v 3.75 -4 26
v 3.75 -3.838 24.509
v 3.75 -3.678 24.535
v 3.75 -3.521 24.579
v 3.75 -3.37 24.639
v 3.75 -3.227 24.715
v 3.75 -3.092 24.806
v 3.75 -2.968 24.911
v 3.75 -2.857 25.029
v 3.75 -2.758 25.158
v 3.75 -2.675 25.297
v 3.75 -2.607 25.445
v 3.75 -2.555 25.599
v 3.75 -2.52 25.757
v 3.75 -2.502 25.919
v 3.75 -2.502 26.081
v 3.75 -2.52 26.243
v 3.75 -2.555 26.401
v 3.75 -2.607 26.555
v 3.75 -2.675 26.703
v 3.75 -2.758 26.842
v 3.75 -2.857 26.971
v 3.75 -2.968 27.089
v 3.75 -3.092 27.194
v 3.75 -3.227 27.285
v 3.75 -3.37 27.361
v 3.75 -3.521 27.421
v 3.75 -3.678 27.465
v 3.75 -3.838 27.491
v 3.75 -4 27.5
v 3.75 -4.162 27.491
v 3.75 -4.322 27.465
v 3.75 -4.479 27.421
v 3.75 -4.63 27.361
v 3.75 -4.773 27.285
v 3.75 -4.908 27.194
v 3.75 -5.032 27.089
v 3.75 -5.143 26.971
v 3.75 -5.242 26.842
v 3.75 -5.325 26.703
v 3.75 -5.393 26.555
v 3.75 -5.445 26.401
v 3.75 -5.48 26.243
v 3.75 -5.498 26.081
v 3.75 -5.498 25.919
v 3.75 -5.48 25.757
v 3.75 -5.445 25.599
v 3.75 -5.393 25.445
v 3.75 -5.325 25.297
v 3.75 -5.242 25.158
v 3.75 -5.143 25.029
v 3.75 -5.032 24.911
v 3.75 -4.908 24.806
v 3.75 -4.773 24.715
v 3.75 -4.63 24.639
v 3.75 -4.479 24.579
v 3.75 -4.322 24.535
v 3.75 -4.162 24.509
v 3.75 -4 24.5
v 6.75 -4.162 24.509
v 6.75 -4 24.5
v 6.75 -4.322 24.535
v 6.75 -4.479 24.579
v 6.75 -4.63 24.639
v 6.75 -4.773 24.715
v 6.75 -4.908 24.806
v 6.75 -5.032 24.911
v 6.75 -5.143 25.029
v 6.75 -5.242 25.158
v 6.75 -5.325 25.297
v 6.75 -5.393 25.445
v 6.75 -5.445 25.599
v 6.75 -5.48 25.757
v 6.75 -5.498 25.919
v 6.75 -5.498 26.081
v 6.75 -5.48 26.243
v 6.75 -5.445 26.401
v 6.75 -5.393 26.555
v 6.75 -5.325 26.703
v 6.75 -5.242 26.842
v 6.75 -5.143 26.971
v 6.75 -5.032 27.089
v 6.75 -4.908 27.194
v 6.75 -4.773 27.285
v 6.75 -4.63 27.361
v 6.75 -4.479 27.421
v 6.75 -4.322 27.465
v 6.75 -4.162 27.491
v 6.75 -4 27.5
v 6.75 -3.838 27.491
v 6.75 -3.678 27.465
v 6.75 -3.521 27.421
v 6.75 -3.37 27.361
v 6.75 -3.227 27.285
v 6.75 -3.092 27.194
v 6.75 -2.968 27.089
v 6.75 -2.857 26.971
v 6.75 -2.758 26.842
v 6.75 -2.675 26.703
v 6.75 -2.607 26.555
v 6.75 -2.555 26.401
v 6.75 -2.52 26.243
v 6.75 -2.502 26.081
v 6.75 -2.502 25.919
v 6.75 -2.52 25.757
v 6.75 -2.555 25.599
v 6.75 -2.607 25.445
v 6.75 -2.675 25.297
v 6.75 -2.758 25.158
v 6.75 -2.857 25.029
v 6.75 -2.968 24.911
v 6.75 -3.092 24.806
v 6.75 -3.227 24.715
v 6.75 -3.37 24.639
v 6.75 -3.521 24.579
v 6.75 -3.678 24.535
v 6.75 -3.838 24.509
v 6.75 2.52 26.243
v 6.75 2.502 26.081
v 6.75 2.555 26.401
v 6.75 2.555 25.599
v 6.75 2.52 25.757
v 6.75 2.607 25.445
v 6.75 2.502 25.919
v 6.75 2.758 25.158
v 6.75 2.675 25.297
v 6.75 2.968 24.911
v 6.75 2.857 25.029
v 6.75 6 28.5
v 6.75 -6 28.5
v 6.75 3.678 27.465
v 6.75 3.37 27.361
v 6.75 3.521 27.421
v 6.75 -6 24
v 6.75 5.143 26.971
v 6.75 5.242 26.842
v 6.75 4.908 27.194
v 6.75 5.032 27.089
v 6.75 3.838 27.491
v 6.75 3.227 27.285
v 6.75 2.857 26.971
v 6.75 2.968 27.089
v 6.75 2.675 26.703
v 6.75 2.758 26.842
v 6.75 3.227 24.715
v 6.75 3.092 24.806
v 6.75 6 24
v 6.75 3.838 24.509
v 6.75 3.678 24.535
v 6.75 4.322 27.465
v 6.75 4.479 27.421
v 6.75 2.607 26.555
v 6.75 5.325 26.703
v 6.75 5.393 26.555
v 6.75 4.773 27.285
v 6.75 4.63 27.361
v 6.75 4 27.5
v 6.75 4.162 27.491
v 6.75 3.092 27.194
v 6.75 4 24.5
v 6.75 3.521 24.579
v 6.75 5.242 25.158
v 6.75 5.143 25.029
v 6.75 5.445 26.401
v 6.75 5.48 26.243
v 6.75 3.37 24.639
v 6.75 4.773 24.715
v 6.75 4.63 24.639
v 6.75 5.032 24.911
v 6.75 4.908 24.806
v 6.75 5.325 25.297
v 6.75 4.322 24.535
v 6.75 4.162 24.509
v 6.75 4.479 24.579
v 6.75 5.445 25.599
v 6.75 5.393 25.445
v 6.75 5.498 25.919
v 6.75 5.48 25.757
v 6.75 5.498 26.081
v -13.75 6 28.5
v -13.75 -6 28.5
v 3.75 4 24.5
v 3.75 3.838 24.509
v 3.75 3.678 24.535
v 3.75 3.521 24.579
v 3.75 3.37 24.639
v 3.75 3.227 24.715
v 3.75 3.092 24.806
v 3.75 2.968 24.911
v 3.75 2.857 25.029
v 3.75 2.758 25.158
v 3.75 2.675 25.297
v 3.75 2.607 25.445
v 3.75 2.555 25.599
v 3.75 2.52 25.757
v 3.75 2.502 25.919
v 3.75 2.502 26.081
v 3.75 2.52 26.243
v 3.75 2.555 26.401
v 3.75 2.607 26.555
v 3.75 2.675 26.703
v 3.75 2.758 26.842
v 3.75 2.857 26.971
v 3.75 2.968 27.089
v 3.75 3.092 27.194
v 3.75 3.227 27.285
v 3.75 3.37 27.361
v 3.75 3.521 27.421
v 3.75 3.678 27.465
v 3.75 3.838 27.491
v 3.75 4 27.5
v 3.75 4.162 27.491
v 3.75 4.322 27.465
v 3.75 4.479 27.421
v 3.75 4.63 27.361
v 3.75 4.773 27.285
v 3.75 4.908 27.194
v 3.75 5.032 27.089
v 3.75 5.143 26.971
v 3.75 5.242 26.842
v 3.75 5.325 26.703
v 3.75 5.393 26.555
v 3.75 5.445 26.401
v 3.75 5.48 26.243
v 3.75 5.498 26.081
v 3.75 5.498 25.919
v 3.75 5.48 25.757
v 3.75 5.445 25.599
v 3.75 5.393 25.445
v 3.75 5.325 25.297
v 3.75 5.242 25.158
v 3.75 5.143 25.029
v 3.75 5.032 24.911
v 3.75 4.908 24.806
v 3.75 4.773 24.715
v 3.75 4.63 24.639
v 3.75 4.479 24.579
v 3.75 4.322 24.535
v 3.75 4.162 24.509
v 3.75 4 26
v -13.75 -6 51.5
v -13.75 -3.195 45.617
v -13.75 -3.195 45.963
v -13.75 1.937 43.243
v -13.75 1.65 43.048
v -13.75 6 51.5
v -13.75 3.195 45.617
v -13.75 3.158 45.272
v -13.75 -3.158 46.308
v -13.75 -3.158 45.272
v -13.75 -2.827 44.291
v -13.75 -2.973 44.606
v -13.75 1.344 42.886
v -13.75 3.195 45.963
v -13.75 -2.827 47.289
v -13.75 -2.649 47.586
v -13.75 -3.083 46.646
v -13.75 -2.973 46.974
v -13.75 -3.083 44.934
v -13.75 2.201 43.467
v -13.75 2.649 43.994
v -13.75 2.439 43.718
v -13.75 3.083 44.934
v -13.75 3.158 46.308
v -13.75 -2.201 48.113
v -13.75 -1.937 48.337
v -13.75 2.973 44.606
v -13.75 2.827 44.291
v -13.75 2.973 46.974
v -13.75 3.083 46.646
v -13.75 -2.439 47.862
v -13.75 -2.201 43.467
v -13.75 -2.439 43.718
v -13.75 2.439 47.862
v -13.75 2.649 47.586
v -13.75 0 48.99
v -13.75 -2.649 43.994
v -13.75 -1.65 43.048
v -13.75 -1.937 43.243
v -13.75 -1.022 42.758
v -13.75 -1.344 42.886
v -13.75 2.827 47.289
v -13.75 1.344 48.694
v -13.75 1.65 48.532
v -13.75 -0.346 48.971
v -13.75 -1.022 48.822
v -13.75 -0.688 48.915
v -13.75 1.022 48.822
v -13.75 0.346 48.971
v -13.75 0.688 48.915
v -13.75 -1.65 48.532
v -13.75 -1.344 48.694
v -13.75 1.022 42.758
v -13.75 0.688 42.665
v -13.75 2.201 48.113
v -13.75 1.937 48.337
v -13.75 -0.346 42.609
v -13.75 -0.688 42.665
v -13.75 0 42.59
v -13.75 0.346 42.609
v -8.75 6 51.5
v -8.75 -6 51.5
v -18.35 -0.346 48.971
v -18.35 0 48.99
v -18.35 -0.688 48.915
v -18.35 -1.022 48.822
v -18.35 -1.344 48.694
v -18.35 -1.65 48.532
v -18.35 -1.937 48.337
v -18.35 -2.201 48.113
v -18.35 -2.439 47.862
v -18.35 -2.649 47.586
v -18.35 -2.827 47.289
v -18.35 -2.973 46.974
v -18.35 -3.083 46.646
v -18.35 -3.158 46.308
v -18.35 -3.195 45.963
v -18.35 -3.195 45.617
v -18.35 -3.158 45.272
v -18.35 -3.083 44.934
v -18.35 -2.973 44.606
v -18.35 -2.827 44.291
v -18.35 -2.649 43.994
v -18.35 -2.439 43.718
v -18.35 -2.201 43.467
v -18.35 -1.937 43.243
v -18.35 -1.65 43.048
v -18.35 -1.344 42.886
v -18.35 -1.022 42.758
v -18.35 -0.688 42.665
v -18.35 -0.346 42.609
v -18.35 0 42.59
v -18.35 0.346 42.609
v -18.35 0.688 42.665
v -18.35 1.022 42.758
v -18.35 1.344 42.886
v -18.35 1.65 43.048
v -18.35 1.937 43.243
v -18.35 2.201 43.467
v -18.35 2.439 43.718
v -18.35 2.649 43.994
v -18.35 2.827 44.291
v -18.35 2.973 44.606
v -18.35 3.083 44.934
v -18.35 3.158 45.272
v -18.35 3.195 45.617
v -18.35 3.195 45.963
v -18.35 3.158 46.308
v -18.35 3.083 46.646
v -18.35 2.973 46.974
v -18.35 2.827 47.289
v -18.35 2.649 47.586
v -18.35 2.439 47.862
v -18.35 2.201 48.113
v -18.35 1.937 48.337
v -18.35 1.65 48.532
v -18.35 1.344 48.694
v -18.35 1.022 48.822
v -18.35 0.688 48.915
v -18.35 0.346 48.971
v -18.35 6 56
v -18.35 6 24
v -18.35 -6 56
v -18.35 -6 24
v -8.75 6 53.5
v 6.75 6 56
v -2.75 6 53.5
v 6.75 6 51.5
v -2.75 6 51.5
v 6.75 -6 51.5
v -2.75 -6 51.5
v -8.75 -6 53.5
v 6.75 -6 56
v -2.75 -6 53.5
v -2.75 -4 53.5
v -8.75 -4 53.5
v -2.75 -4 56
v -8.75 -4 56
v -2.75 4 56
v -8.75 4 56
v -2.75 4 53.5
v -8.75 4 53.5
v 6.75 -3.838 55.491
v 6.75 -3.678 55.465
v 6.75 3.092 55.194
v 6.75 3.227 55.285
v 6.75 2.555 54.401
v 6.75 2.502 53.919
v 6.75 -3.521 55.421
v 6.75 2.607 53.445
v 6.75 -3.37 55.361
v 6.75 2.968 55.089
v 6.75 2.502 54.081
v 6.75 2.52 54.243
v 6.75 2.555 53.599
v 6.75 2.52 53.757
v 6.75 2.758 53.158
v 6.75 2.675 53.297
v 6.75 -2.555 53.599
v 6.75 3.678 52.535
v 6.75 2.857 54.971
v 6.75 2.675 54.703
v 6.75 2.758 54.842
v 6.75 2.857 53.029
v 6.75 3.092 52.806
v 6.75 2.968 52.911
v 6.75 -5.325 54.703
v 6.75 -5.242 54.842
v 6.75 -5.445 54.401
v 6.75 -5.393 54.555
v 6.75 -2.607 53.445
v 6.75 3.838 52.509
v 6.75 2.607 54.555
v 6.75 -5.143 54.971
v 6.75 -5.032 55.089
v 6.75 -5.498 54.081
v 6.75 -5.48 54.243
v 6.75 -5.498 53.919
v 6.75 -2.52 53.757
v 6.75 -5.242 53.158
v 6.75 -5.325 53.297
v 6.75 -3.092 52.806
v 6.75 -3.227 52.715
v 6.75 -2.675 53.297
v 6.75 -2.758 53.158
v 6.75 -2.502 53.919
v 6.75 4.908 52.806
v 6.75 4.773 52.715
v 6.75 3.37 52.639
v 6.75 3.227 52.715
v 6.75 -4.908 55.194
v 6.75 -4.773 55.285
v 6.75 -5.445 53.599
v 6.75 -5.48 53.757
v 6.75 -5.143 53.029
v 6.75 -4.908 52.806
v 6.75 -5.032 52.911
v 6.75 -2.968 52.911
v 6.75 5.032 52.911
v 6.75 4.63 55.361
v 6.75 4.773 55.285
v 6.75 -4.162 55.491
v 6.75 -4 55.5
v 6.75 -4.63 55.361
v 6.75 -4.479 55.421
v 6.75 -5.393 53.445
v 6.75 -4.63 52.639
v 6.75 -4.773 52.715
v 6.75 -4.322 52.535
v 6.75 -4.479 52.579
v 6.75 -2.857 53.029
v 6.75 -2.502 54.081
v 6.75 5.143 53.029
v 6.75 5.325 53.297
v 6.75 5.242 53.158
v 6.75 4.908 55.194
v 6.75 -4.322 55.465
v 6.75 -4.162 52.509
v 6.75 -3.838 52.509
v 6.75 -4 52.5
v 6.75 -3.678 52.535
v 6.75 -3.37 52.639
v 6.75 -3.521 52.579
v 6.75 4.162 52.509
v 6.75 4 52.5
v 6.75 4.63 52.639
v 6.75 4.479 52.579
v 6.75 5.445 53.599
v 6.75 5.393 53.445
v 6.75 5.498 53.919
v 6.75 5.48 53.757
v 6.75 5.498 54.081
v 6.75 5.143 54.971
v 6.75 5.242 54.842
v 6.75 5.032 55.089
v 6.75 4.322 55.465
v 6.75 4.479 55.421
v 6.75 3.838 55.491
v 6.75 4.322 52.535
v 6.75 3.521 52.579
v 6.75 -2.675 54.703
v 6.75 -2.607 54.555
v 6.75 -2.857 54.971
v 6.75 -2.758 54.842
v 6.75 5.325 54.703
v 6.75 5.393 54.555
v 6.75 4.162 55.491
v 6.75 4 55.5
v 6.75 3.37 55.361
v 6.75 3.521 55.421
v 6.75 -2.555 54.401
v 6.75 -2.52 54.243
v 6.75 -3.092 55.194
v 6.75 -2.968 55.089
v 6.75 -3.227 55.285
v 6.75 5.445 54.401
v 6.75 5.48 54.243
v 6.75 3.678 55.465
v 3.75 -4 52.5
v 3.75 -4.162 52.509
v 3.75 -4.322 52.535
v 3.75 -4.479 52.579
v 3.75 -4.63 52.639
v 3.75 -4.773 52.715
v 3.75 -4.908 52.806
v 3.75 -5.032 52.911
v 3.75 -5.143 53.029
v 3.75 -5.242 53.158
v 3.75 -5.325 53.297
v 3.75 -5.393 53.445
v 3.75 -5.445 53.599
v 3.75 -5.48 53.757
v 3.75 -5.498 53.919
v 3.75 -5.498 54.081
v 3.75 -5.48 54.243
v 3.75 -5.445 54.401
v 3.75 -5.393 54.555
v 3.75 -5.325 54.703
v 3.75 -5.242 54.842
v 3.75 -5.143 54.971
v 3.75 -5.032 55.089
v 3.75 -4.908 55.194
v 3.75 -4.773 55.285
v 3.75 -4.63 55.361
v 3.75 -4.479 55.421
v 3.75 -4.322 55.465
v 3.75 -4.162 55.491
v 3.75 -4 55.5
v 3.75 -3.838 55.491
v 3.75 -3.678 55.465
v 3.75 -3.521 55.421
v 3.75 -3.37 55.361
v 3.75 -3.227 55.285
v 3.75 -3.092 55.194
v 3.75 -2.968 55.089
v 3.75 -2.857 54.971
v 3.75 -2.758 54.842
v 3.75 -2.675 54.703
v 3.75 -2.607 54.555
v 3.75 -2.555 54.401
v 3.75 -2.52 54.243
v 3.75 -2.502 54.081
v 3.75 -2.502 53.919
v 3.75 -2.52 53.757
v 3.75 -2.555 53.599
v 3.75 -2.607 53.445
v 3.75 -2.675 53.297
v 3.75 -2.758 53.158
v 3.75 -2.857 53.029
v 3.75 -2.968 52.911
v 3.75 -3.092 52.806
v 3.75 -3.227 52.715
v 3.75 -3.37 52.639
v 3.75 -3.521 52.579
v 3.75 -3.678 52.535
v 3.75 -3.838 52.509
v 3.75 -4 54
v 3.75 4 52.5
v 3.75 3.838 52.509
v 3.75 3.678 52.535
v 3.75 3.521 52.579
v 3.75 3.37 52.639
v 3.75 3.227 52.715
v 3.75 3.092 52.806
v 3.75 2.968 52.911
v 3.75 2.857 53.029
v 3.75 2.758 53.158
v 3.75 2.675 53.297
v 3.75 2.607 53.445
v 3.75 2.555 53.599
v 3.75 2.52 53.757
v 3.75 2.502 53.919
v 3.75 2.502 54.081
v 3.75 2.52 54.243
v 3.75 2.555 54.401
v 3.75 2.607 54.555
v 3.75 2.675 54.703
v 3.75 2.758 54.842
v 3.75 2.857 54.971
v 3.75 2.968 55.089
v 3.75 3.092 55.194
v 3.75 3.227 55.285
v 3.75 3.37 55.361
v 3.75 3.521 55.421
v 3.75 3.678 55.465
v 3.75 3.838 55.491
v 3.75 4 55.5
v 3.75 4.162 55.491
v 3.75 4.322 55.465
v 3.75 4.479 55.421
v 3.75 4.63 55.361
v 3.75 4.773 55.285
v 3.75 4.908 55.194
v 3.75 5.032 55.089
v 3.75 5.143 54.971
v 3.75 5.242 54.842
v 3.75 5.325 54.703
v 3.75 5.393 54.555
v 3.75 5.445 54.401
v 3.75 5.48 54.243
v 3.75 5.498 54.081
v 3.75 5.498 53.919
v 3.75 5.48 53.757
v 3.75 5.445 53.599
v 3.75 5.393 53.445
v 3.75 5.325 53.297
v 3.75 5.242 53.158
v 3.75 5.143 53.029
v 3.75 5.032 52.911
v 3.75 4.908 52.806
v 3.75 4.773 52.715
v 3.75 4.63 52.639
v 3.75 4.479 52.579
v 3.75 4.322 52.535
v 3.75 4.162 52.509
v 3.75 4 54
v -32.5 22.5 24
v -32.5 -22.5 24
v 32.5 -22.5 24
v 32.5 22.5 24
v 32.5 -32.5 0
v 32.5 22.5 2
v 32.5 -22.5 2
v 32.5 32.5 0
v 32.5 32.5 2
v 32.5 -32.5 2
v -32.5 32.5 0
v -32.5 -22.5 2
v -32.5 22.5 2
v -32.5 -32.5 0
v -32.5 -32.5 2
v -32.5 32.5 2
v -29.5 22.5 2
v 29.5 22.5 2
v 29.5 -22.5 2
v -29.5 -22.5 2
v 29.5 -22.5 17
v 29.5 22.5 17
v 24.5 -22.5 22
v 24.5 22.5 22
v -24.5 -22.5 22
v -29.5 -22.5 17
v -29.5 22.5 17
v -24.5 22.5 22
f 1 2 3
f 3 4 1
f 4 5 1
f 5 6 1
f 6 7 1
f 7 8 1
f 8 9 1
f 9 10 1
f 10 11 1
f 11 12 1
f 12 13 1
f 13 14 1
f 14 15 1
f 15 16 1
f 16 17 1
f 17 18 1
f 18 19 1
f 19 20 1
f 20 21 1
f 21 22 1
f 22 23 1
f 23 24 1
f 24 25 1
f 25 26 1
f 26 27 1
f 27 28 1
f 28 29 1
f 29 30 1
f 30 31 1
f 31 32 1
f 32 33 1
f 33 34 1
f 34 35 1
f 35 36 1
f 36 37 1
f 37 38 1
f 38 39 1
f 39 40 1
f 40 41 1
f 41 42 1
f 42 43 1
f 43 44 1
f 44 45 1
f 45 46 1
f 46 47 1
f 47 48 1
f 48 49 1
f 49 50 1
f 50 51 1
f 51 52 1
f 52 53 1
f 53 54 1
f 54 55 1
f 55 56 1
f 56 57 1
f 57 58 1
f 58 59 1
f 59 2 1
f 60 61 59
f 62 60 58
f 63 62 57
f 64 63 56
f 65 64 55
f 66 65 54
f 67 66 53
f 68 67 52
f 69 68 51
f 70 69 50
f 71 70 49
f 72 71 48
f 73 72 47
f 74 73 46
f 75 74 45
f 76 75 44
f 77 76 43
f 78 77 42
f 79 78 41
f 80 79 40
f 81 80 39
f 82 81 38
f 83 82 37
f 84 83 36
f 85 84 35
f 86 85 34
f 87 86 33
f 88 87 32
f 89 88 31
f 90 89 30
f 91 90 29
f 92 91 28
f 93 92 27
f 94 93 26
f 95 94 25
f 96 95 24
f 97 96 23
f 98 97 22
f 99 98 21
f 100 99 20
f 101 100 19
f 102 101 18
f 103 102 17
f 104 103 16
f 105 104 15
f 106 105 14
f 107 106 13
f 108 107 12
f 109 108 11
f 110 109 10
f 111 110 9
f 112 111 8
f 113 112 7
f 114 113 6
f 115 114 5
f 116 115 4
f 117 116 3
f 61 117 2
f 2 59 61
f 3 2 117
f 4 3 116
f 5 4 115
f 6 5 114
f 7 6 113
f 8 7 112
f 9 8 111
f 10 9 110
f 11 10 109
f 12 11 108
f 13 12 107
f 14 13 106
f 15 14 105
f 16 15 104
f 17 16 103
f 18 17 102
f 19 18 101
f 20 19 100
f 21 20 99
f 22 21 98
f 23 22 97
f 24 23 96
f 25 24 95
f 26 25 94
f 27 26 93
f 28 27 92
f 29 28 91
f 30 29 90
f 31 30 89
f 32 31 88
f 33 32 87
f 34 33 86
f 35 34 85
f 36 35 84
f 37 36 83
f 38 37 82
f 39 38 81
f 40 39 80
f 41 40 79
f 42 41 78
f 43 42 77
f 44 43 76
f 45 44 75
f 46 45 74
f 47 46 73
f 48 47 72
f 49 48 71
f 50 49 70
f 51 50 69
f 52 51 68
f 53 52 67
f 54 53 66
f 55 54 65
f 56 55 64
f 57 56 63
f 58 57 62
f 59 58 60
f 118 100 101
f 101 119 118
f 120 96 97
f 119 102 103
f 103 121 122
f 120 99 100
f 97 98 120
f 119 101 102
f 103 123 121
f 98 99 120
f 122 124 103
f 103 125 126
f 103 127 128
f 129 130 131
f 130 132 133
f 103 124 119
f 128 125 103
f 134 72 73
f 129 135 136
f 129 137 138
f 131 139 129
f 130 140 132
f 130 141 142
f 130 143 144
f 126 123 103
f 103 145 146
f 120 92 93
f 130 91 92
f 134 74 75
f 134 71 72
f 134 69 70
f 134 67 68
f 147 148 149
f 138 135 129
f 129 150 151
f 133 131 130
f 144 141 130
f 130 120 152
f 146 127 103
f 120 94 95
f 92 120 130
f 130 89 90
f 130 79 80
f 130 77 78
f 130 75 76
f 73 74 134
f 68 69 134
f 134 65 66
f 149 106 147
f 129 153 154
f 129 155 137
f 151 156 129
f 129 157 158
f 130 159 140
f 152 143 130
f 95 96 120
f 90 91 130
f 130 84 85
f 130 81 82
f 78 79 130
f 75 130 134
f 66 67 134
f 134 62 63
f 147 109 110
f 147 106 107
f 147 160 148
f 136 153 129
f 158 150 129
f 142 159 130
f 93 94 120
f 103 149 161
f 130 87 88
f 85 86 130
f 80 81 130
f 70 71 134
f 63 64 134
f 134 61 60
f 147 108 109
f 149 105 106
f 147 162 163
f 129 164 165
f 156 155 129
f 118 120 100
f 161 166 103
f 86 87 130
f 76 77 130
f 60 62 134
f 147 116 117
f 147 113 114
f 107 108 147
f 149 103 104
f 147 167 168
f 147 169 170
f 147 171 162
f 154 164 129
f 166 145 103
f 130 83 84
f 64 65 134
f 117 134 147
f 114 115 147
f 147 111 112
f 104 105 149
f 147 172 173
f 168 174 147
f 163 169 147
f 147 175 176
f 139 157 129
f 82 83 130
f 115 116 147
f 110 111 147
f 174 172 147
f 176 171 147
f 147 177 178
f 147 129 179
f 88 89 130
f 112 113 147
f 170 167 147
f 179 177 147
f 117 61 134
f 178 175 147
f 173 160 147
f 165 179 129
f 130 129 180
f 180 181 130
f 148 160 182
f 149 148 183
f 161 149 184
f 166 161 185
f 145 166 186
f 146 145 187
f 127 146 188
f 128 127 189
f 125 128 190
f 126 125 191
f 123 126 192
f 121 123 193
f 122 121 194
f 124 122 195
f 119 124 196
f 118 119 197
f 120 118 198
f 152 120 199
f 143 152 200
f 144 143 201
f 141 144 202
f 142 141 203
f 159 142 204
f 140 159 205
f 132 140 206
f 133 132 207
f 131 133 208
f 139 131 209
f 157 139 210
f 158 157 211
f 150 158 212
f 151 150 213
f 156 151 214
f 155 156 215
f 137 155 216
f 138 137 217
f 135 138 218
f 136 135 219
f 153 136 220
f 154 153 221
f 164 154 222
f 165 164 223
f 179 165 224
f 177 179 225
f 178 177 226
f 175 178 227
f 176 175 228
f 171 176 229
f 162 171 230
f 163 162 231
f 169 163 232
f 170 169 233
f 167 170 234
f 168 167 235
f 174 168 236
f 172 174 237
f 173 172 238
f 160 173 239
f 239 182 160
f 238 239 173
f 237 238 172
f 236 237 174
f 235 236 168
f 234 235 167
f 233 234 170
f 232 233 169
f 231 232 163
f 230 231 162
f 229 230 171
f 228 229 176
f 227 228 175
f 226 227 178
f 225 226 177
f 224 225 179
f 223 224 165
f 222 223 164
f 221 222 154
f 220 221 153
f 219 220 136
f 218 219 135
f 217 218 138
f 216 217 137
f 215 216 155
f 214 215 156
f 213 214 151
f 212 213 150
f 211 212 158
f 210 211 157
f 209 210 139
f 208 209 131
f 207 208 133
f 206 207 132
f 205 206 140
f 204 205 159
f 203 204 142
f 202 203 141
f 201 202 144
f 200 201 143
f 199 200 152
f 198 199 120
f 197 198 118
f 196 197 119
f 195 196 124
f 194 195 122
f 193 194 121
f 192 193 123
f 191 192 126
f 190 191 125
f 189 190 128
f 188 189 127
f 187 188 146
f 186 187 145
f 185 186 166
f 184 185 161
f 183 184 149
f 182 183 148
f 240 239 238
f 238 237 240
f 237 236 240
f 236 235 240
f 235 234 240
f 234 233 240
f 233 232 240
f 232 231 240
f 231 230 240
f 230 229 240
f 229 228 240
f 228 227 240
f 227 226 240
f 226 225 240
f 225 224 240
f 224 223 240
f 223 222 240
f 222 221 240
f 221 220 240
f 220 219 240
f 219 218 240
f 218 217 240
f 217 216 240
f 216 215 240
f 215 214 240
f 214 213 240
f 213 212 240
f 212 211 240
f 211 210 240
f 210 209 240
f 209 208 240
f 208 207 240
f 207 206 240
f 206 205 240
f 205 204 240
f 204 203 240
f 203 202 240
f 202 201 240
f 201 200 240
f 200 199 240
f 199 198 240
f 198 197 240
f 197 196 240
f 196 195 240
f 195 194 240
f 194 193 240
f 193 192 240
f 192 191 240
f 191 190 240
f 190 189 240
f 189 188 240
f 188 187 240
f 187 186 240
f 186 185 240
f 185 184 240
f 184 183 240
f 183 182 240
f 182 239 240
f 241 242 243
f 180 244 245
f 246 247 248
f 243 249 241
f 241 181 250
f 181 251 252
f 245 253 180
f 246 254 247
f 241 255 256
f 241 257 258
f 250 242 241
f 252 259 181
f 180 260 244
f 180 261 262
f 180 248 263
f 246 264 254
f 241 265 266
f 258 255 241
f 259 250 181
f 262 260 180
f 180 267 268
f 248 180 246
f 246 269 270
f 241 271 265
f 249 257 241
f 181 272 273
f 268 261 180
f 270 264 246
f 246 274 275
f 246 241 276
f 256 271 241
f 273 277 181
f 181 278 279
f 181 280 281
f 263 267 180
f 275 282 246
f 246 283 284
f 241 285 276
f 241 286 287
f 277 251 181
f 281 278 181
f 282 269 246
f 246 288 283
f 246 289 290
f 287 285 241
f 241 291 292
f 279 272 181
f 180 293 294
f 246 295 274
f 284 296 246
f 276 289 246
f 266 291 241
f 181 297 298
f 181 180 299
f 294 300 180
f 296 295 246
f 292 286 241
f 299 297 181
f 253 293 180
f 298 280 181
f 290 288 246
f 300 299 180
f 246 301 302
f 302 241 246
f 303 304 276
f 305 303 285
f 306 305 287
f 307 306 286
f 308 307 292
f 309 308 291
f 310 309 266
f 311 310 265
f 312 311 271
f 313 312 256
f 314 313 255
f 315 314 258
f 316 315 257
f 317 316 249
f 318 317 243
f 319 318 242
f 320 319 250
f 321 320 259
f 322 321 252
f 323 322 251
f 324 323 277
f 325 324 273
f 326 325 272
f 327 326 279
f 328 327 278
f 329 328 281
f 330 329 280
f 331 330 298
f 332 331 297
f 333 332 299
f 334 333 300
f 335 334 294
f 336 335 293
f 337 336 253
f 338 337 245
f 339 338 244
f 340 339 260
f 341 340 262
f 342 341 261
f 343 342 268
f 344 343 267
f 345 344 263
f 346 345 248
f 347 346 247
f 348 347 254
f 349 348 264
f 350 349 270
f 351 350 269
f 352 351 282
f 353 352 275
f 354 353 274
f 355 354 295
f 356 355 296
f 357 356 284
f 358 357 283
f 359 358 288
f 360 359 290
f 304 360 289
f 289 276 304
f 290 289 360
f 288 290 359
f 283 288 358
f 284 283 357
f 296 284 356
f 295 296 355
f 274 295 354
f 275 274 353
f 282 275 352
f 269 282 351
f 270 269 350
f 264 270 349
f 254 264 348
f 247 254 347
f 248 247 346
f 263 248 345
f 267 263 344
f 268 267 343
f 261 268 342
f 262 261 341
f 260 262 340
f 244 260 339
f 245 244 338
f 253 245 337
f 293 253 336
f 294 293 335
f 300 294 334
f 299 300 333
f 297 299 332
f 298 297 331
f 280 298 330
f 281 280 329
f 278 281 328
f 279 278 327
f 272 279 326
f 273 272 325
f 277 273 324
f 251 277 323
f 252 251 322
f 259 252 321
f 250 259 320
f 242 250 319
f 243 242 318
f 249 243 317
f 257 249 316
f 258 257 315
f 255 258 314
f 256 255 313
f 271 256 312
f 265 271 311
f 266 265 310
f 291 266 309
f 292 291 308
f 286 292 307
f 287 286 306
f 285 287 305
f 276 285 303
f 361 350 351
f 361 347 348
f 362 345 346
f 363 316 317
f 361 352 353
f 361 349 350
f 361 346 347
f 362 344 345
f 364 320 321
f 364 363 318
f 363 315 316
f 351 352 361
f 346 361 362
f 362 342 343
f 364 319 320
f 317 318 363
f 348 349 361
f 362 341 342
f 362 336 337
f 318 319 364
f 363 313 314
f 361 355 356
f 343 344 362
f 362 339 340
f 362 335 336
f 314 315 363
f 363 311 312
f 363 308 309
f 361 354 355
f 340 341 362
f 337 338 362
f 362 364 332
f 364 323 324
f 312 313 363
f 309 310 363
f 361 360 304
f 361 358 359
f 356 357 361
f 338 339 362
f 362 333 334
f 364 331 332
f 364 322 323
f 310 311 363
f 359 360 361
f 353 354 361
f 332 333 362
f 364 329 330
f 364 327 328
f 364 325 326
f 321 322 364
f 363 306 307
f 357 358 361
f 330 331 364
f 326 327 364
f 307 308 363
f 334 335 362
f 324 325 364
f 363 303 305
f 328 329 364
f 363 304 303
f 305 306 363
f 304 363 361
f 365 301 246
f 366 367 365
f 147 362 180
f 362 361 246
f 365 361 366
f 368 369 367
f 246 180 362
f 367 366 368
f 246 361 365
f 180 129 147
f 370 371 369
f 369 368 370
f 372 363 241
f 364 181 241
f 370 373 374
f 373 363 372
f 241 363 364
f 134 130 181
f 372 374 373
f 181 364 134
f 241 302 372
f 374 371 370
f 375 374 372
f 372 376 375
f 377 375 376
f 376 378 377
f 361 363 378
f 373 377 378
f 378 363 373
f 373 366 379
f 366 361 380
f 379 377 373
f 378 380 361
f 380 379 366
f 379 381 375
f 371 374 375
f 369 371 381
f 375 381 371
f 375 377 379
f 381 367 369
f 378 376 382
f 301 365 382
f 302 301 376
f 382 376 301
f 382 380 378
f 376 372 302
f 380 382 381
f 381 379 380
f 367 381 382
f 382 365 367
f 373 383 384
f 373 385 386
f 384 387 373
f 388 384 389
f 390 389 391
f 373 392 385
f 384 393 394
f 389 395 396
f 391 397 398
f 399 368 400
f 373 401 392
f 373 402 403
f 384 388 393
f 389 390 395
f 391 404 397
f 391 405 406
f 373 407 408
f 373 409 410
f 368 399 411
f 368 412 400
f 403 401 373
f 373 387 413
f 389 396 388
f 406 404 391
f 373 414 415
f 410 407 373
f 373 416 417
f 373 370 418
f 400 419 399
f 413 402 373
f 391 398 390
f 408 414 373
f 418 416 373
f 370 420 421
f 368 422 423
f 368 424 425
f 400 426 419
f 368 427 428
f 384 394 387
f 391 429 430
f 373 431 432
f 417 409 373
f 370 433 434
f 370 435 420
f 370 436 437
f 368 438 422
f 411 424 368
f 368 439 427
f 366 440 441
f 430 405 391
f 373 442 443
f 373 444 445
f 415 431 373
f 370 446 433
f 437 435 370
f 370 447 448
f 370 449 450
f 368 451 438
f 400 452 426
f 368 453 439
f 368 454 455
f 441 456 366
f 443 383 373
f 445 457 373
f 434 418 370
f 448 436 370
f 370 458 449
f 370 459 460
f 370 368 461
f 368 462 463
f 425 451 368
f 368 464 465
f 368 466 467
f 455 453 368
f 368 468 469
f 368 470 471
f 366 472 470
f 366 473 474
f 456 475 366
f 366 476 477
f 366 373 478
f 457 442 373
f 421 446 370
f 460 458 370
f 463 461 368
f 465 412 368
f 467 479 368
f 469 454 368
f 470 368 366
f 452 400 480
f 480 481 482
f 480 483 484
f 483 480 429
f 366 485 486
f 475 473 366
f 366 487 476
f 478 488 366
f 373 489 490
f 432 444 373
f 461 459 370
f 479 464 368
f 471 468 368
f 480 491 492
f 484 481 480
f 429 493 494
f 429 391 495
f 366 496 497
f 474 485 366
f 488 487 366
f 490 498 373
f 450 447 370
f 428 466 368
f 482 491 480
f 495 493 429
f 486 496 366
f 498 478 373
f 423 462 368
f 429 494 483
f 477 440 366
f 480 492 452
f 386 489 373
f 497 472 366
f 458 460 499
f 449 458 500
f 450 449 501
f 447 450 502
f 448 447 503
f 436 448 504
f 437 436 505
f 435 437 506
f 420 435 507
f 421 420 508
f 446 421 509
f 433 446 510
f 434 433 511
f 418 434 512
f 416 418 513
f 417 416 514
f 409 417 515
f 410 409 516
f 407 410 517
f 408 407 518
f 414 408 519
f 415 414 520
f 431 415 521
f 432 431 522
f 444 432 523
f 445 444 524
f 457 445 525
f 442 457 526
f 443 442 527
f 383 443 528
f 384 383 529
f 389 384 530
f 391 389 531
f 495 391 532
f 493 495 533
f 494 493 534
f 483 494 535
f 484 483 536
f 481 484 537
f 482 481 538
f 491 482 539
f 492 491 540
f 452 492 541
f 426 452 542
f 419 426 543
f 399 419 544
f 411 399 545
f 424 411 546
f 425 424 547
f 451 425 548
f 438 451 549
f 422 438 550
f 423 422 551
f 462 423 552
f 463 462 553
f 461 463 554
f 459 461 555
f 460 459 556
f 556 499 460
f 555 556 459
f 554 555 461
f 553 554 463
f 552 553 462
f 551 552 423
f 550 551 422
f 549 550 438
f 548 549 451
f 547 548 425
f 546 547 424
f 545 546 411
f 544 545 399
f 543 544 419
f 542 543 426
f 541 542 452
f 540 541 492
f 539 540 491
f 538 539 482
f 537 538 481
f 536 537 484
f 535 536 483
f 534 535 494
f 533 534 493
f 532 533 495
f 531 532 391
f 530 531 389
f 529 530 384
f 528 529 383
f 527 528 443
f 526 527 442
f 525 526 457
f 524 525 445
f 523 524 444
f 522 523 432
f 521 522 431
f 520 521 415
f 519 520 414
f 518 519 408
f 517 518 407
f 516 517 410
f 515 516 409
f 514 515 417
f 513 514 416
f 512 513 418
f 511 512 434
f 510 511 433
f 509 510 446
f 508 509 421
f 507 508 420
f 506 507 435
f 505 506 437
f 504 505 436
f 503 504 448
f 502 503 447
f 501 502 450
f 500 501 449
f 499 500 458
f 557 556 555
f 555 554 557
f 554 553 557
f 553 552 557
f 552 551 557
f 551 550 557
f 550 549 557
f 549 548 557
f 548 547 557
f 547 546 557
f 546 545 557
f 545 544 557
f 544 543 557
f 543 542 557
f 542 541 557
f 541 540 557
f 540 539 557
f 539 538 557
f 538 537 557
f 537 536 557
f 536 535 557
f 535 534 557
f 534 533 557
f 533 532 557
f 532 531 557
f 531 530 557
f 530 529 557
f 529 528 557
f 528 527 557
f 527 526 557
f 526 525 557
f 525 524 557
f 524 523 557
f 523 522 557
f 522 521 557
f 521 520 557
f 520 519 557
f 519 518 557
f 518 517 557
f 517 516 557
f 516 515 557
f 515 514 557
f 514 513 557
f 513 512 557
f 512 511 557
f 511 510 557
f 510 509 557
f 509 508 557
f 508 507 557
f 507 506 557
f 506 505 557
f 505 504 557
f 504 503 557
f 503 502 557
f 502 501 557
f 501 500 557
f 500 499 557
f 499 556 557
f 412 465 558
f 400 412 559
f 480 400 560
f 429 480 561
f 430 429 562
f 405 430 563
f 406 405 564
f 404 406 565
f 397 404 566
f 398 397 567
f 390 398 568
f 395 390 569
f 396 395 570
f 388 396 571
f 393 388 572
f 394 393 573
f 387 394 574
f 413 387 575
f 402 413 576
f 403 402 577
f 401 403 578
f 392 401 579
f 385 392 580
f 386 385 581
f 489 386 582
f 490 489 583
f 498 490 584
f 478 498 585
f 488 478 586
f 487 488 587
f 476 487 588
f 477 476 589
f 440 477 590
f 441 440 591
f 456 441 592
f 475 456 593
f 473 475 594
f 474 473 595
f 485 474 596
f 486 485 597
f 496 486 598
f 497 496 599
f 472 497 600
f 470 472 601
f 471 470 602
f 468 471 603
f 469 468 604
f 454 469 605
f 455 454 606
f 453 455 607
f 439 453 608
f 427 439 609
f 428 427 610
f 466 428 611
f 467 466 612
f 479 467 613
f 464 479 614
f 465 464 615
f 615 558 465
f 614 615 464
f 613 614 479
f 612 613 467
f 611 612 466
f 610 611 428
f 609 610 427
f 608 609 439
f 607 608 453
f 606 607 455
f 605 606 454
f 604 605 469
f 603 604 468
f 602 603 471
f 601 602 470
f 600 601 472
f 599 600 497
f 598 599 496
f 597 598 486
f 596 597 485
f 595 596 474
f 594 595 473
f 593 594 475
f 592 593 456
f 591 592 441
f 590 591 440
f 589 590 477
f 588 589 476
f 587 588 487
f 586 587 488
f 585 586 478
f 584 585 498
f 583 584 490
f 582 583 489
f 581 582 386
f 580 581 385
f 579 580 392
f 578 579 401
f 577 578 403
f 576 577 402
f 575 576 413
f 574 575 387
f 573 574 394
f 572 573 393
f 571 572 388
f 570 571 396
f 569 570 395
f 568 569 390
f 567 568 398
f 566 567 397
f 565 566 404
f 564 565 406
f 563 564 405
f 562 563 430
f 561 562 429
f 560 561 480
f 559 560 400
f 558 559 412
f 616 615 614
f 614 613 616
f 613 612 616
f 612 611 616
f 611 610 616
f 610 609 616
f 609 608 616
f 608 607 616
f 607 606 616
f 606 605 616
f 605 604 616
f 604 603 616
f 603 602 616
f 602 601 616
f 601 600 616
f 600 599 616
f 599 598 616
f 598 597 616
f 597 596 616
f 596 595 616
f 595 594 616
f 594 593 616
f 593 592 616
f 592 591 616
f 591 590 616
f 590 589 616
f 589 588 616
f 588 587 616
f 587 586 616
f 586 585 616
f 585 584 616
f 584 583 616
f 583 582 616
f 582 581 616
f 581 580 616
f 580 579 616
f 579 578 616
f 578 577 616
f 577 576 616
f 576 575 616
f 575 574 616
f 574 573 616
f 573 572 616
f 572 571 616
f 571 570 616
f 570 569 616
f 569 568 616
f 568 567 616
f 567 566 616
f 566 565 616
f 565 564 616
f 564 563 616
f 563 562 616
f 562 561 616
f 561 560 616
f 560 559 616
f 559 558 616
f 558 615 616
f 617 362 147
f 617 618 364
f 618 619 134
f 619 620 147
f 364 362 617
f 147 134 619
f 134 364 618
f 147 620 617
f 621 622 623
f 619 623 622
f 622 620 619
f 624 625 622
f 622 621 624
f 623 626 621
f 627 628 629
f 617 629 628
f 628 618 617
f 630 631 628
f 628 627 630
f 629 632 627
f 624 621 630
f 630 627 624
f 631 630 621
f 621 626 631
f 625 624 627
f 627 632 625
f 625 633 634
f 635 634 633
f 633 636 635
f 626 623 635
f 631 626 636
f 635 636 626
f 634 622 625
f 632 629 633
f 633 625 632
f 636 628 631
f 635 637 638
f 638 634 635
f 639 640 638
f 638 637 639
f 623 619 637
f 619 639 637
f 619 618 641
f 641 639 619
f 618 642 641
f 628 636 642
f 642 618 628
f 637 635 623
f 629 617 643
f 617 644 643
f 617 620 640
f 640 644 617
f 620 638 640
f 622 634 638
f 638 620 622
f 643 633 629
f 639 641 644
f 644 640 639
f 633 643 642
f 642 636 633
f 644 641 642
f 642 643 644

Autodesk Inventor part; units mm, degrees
ref_plane "YZ Plane" through (0, 0, 0) normal (1, 0, 0) x (0, 1, 0)
ref_plane "XZ Plane" through (0, 0, 0) normal (0, 1, 0) x (-1, 0, 0)
ref_plane "XY Plane" through (0, 0, 0) normal (0, 0, 1) x (1, 0, 0)
sketch "スケッチ1" plane through (0, 0, 0) normal (0, 0, 1) x (1, 0, 0)
  line L0 (-32.5, 32.5) -> (32.5, 32.5)
  line L1 (32.5, 32.5) -> (32.5, -32.5)
  line L2 (32.5, -32.5) -> (-32.5, -32.5)
  line L3 (-32.5, -32.5) -> (-32.5, 32.5)
  line L4 (-32.5, 32.5) -> (32.5, -32.5) construction
  line L5 (32.5, 32.5) -> (-32.5, -32.5) construction
  line L6 (-27, 27) -> (27, 27) construction
  line L7 (27, 27) -> (27, -27) construction
  line L8 (27, -27) -> (-27, -27) construction
  line L9 (-27, -27) -> (-27, 27) construction
  line L10 (-27, 27) -> (27, -27) construction
  line L11 (27, 27) -> (-27, -27) construction
  point P0 (0, 0)
  dimension "d0" = 65
  dimension "d1" = 65
  dimension "d2" = 54
  dimension "d3" = 54
extrude "押し出し1" add sketch "スケッチ1" along normal blind 2
sketch "スケッチ2" plane through (0, 0, 2) normal (0, 0, 1) x (1, 0, 0)
  line L0 (0, 54.4355) -> (0, -54.4355)
  line L1 (29.5, 22.5) -> (29.5, -22.5)
  line L2 (32.5, -32.5) -> (32.5, 32.5) projected
  line L3 (29.5, -22.5) -> (32.5, -22.5)
  line L4 (29.5, 22.5) -> (32.5, 22.5)
  line L5 (-36.7742, 0) -> (36.7742, 0)
  line L6 (-29.5, 22.5) -> (-29.5, -22.5)
  line L7 (-29.5, -22.5) -> (-32.5, -22.5)
  line L8 (-29.5, 22.5) -> (-32.5, 22.5)
  line L9 (-32.5, 32.5) -> (-32.5, -32.5) projected
  point P0 (0, 0)
  point P1 (32.5, 0)
  dimension "d7" = 22.5
  dimension "d8" = 45
  dimension "d9" = 3
extrude "押し出し2" add sketch "スケッチ2" along normal blind 20
sketch "スケッチ3" plane through (0, 0, 22) normal (0, 0, 1) x (1, 0, 0)
  line L0 (-32.5, -22.5) -> (-29.5, -22.5) projected
  line L1 (-29.5, -22.5) -> (-29.5, 22.5) projected
  line L2 (-29.5, 22.5) -> (-32.5, 22.5) projected
  line L3 (-32.5, 22.5) -> (-32.5, -22.5) projected
  line L4 (29.5, -22.5) -> (32.5, -22.5) projected
  line L5 (32.5, -22.5) -> (32.5, 22.5) projected
  line L6 (32.5, 22.5) -> (29.5, 22.5) projected
  line L7 (29.5, 22.5) -> (29.5, -22.5) projected
  line L8 (32.5, -22.5) -> (-32.5, -22.5)
  line L9 (-32.5, -22.5) -> (-32.5, 22.5)
  line L10 (-32.5, 22.5) -> (32.5, 22.5)
  line L11 (32.5, 22.5) -> (32.5, -22.5)
  point P0 (0, 0)
extrude "押し出し3" add sketch "スケッチ3" along normal blind 2
sketch "スケッチ4" plane through (0, 0, 24) normal (0, 0, 1) x (1, 0, 0)
  line L0 (13.75, -6) -> (-13.75, -6)
  line L1 (-13.75, -6) -> (-13.75, 6)
  line L2 (-13.75, 6) -> (13.75, 6)
  line L3 (13.75, 6) -> (13.75, -6)
  line L4 (13.75, -6) -> (-13.75, 6) construction
  line L5 (-13.75, -6) -> (13.75, 6) construction
  line L6 (-13.75, -6) -> (6.75, -6)
  line L7 (6.75, -6) -> (6.75, 6)
  line L8 (6.75, 6) -> (-13.75, 6)
  line L9 (-13.75, 6) -> (-13.75, -6)
  point P0 (0, 0)
  point P1 (6.75, -6)
  dimension "d14" = 27.5
  dimension "d15" = 12
  dimension "d16" = 7
extrude "押し出し4" add sketch "スケッチ4" along normal blind 4.5 contours L0 L1 L2 L7
sketch "スケッチ5" plane through (0, 0, 24) normal (0, 0, 1) x (1, 0, 0)
  line L0 (-13.75, -6) -> (-13.75, 6) projected
  line L1 (-13.75, -6) -> (-19.35, -6)
  line L2 (-19.35, -6) -> (-19.35, 6)
  line L3 (-19.35, 6) -> (-13.75, 6)
  line L4 (-13.75, 6) -> (-13.75, -6)
  line L5 (6.75, 6) -> (-13.75, 6) projected
  point P0 (0, 0)
  dimension "d19" = 5.6
extrude "押し出し5" add sketch "スケッチ5" along normal blind 32
sketch "スケッチ6" plane through (-13.75, -6, 28.5) normal (1, 0, 0) x (0, 0, -1)
  line L0 (0, 12) -> (0, 0) projected
  line L1 (0, 12) -> (-27.5, 12) projected
  line L2 (-27.5, 0) -> (-27.5, 12) projected
  line L3 (0, 0) -> (-27.5, 0) projected
  line L4 (-23, 0) -> (-23, 12)
  point P0 (28.5, 6)
  dimension "d22" = 4.5
extrude "押し出し6" add sketch "スケッチ6" along normal blind 20.5 contours L4 L3 L2 L1
sketch "スケッチ7" plane through (-19.35, -6, 24) normal (-1, 0, 0) x (0, 0, 1)
  line L0 (32, 12) -> (32, 0) construction
  line L1 (32, 6) -> (0, 6) construction
  line L2 (0, 28.5) -> (0, -16.5) construction
  point P0 (-24, 6)
  point P1 (21.79, 6)
  dimension "d25" = 10.21
hole "穴1" at (-19.35, 0, 45.79) direction (1, 0, 0) diameter 6.4 depth 6.3
sketch "スケッチ8" plane through (-19.35, -6, 24) normal (-1, 0, 0) x (0, 0, 1)
  circle A0 centre (21.79, 6) radius 3.2 projected
  line L0 (0, 0) -> (0, 12) projected
  line L1 (0, 0) -> (32, 0) projected
  line L2 (32, 12) -> (32, 0) projected
  line L3 (0, 12) -> (32, 12) projected
  point P0 (-24, 6)
extrude "押し出し7" cut sketch "スケッチ8" against normal blind 1
sketch "スケッチ9" plane through (6.75, -6, 24) normal (1, 0, 0) x (0, 0, -1)
  circle A0 centre (-21.79, 6) radius 3.2 projected
  line L0 (-58.0849, 6) -> (14.5049, 6)
  line L1 (0, -16.5) -> (0, 28.5) projected
  line L2 (-16, -14.4154) -> (-16, 26.4154)
  line L3 (-32, 12) -> (-32, 0) projected
  point P0 (24, 6)
  point P1 (-2, 2)
  point P2 (-2, 10)
  point P3 (-16, 6)
  point P4 (-30, 2)
  point P5 (-30, 10)
  dimension "d35" = 8
  dimension "d36" = 2
  dimension "d37" = 16
hole "穴2" at (6.75, -4, 26) at (6.75, 4, 26) at (6.75, -4, 54) at (6.75, 4, 54) direction (-1, 0, 0) diameter 3 depth 3
sketch "スケッチ10" plane through (0, 0, 2) normal (0, 0, 1) x (1, 0, 0)
  line L0 (24.25, -0.35) -> (-24.25, -0.35)
  line L1 (-24.25, -0.35) -> (-24.25, 28.35)
  line L2 (-24.25, 28.35) -> (24.25, 28.35)
  line L3 (24.25, 28.35) -> (24.25, -0.35)
  line L4 (24.25, -0.35) -> (-24.25, 28.35) construction
  line L5 (-24.25, -0.35) -> (24.25, 28.35) construction
  line L6 (32.5, 22.5) -> (32.5, 32.5) projected
  line L7 (32.5, 32.5) -> (-32.5, 32.5) projected
  circle A0 centre (24.25, -0.35) radius 3
  circle A1 centre (24.25, 28.35) radius 3
  circle A2 centre (-24.25, 28.35) radius 3
  circle A3 centre (-24.25, -0.35) radius 3
  point P0 (0, 0)
  point P1 (0, 14)
  point P2 (32.5, 27.5)
  dimension "d45" = 48.5
  dimension "d46" = 28.7
  dimension "d47" = 32.5
  dimension "d48" = 18.5
  dimension "d56" = 6
  dimension "d57" = 6
  dimension "d58" = 6
  dimension "d59" = 6
extrude "押し出し8" [suppressed]
sketch "スケッチ11" plane through (0, 0, 0) normal (0, 0, -1) x (-1, 0, 0)
  circle A0 centre (-24.25, 28.35) radius 3 projected
  circle A1 centre (-24.25, -0.35) radius 3 projected
  circle A2 centre (24.25, -0.35) radius 3 projected
  circle A3 centre (24.25, 28.35) radius 3 projected
  point P0 (0, 0)
  point P1 (-18.5, 30)
hole "穴4" [suppressed]
chamfer "面取り1" distance 5 angle 45 2 edges at (29.5, 0, 22) (-29.5, 0, 22)
fillet "フィレット1" [suppressed]
sketch "スケッチ12" plane through (0, 0, 56) normal (0, 0, 1) x (1, 0, 0)
  line L0 (-2.75, -4) -> (-8.75, -4)
  line L1 (-8.75, -4) -> (-8.75, 4)
  line L2 (-8.75, 4) -> (-2.75, 4)
  line L3 (-2.75, 4) -> (-2.75, -4)
  line L4 (-2.75, -4) -> (-8.75, 4) construction
  line L5 (-8.75, -4) -> (-2.75, 4) construction
  line L6 (-13.75, 6) -> (-13.75, -6) projected
  line L7 (-18.35, -6) -> (6.75, -6) projected
  point P0 (0, 0)
  point P1 (-5.75, 0)
  dimension "d73" = 6
  dimension "d74" = 8
  dimension "d75" = 5
  dimension "d76" = 6
extrude "押し出し9" cut sketch "スケッチ12" against normal blind 6.75
sketch "スケッチ13" plane through (6.75, 6, 28.5) normal (0, 1, 0) x (1, 0, 0)
  line L0 (-15.5, -23) -> (-9.5, -23) projected
  line L1 (-15.5, -23) -> (-9.5, -23) projected
  line L2 (-15.5, -27.5) -> (-15.5, -23) projected
  line L3 (-9.5, -27.5) -> (-15.5, -27.5) projected
  line L4 (-9.5, -27.5) -> (-9.5, -23) projected
  line L5 (-9.5, -25) -> (-15.5, -25)
  point P0 (-6.75, 28.5)
  dimension "d79" = 2
extrude "押し出し10" cut sketch "スケッチ13" against normal through all contours L0 L4 L5 L2
properties part number "Base"
